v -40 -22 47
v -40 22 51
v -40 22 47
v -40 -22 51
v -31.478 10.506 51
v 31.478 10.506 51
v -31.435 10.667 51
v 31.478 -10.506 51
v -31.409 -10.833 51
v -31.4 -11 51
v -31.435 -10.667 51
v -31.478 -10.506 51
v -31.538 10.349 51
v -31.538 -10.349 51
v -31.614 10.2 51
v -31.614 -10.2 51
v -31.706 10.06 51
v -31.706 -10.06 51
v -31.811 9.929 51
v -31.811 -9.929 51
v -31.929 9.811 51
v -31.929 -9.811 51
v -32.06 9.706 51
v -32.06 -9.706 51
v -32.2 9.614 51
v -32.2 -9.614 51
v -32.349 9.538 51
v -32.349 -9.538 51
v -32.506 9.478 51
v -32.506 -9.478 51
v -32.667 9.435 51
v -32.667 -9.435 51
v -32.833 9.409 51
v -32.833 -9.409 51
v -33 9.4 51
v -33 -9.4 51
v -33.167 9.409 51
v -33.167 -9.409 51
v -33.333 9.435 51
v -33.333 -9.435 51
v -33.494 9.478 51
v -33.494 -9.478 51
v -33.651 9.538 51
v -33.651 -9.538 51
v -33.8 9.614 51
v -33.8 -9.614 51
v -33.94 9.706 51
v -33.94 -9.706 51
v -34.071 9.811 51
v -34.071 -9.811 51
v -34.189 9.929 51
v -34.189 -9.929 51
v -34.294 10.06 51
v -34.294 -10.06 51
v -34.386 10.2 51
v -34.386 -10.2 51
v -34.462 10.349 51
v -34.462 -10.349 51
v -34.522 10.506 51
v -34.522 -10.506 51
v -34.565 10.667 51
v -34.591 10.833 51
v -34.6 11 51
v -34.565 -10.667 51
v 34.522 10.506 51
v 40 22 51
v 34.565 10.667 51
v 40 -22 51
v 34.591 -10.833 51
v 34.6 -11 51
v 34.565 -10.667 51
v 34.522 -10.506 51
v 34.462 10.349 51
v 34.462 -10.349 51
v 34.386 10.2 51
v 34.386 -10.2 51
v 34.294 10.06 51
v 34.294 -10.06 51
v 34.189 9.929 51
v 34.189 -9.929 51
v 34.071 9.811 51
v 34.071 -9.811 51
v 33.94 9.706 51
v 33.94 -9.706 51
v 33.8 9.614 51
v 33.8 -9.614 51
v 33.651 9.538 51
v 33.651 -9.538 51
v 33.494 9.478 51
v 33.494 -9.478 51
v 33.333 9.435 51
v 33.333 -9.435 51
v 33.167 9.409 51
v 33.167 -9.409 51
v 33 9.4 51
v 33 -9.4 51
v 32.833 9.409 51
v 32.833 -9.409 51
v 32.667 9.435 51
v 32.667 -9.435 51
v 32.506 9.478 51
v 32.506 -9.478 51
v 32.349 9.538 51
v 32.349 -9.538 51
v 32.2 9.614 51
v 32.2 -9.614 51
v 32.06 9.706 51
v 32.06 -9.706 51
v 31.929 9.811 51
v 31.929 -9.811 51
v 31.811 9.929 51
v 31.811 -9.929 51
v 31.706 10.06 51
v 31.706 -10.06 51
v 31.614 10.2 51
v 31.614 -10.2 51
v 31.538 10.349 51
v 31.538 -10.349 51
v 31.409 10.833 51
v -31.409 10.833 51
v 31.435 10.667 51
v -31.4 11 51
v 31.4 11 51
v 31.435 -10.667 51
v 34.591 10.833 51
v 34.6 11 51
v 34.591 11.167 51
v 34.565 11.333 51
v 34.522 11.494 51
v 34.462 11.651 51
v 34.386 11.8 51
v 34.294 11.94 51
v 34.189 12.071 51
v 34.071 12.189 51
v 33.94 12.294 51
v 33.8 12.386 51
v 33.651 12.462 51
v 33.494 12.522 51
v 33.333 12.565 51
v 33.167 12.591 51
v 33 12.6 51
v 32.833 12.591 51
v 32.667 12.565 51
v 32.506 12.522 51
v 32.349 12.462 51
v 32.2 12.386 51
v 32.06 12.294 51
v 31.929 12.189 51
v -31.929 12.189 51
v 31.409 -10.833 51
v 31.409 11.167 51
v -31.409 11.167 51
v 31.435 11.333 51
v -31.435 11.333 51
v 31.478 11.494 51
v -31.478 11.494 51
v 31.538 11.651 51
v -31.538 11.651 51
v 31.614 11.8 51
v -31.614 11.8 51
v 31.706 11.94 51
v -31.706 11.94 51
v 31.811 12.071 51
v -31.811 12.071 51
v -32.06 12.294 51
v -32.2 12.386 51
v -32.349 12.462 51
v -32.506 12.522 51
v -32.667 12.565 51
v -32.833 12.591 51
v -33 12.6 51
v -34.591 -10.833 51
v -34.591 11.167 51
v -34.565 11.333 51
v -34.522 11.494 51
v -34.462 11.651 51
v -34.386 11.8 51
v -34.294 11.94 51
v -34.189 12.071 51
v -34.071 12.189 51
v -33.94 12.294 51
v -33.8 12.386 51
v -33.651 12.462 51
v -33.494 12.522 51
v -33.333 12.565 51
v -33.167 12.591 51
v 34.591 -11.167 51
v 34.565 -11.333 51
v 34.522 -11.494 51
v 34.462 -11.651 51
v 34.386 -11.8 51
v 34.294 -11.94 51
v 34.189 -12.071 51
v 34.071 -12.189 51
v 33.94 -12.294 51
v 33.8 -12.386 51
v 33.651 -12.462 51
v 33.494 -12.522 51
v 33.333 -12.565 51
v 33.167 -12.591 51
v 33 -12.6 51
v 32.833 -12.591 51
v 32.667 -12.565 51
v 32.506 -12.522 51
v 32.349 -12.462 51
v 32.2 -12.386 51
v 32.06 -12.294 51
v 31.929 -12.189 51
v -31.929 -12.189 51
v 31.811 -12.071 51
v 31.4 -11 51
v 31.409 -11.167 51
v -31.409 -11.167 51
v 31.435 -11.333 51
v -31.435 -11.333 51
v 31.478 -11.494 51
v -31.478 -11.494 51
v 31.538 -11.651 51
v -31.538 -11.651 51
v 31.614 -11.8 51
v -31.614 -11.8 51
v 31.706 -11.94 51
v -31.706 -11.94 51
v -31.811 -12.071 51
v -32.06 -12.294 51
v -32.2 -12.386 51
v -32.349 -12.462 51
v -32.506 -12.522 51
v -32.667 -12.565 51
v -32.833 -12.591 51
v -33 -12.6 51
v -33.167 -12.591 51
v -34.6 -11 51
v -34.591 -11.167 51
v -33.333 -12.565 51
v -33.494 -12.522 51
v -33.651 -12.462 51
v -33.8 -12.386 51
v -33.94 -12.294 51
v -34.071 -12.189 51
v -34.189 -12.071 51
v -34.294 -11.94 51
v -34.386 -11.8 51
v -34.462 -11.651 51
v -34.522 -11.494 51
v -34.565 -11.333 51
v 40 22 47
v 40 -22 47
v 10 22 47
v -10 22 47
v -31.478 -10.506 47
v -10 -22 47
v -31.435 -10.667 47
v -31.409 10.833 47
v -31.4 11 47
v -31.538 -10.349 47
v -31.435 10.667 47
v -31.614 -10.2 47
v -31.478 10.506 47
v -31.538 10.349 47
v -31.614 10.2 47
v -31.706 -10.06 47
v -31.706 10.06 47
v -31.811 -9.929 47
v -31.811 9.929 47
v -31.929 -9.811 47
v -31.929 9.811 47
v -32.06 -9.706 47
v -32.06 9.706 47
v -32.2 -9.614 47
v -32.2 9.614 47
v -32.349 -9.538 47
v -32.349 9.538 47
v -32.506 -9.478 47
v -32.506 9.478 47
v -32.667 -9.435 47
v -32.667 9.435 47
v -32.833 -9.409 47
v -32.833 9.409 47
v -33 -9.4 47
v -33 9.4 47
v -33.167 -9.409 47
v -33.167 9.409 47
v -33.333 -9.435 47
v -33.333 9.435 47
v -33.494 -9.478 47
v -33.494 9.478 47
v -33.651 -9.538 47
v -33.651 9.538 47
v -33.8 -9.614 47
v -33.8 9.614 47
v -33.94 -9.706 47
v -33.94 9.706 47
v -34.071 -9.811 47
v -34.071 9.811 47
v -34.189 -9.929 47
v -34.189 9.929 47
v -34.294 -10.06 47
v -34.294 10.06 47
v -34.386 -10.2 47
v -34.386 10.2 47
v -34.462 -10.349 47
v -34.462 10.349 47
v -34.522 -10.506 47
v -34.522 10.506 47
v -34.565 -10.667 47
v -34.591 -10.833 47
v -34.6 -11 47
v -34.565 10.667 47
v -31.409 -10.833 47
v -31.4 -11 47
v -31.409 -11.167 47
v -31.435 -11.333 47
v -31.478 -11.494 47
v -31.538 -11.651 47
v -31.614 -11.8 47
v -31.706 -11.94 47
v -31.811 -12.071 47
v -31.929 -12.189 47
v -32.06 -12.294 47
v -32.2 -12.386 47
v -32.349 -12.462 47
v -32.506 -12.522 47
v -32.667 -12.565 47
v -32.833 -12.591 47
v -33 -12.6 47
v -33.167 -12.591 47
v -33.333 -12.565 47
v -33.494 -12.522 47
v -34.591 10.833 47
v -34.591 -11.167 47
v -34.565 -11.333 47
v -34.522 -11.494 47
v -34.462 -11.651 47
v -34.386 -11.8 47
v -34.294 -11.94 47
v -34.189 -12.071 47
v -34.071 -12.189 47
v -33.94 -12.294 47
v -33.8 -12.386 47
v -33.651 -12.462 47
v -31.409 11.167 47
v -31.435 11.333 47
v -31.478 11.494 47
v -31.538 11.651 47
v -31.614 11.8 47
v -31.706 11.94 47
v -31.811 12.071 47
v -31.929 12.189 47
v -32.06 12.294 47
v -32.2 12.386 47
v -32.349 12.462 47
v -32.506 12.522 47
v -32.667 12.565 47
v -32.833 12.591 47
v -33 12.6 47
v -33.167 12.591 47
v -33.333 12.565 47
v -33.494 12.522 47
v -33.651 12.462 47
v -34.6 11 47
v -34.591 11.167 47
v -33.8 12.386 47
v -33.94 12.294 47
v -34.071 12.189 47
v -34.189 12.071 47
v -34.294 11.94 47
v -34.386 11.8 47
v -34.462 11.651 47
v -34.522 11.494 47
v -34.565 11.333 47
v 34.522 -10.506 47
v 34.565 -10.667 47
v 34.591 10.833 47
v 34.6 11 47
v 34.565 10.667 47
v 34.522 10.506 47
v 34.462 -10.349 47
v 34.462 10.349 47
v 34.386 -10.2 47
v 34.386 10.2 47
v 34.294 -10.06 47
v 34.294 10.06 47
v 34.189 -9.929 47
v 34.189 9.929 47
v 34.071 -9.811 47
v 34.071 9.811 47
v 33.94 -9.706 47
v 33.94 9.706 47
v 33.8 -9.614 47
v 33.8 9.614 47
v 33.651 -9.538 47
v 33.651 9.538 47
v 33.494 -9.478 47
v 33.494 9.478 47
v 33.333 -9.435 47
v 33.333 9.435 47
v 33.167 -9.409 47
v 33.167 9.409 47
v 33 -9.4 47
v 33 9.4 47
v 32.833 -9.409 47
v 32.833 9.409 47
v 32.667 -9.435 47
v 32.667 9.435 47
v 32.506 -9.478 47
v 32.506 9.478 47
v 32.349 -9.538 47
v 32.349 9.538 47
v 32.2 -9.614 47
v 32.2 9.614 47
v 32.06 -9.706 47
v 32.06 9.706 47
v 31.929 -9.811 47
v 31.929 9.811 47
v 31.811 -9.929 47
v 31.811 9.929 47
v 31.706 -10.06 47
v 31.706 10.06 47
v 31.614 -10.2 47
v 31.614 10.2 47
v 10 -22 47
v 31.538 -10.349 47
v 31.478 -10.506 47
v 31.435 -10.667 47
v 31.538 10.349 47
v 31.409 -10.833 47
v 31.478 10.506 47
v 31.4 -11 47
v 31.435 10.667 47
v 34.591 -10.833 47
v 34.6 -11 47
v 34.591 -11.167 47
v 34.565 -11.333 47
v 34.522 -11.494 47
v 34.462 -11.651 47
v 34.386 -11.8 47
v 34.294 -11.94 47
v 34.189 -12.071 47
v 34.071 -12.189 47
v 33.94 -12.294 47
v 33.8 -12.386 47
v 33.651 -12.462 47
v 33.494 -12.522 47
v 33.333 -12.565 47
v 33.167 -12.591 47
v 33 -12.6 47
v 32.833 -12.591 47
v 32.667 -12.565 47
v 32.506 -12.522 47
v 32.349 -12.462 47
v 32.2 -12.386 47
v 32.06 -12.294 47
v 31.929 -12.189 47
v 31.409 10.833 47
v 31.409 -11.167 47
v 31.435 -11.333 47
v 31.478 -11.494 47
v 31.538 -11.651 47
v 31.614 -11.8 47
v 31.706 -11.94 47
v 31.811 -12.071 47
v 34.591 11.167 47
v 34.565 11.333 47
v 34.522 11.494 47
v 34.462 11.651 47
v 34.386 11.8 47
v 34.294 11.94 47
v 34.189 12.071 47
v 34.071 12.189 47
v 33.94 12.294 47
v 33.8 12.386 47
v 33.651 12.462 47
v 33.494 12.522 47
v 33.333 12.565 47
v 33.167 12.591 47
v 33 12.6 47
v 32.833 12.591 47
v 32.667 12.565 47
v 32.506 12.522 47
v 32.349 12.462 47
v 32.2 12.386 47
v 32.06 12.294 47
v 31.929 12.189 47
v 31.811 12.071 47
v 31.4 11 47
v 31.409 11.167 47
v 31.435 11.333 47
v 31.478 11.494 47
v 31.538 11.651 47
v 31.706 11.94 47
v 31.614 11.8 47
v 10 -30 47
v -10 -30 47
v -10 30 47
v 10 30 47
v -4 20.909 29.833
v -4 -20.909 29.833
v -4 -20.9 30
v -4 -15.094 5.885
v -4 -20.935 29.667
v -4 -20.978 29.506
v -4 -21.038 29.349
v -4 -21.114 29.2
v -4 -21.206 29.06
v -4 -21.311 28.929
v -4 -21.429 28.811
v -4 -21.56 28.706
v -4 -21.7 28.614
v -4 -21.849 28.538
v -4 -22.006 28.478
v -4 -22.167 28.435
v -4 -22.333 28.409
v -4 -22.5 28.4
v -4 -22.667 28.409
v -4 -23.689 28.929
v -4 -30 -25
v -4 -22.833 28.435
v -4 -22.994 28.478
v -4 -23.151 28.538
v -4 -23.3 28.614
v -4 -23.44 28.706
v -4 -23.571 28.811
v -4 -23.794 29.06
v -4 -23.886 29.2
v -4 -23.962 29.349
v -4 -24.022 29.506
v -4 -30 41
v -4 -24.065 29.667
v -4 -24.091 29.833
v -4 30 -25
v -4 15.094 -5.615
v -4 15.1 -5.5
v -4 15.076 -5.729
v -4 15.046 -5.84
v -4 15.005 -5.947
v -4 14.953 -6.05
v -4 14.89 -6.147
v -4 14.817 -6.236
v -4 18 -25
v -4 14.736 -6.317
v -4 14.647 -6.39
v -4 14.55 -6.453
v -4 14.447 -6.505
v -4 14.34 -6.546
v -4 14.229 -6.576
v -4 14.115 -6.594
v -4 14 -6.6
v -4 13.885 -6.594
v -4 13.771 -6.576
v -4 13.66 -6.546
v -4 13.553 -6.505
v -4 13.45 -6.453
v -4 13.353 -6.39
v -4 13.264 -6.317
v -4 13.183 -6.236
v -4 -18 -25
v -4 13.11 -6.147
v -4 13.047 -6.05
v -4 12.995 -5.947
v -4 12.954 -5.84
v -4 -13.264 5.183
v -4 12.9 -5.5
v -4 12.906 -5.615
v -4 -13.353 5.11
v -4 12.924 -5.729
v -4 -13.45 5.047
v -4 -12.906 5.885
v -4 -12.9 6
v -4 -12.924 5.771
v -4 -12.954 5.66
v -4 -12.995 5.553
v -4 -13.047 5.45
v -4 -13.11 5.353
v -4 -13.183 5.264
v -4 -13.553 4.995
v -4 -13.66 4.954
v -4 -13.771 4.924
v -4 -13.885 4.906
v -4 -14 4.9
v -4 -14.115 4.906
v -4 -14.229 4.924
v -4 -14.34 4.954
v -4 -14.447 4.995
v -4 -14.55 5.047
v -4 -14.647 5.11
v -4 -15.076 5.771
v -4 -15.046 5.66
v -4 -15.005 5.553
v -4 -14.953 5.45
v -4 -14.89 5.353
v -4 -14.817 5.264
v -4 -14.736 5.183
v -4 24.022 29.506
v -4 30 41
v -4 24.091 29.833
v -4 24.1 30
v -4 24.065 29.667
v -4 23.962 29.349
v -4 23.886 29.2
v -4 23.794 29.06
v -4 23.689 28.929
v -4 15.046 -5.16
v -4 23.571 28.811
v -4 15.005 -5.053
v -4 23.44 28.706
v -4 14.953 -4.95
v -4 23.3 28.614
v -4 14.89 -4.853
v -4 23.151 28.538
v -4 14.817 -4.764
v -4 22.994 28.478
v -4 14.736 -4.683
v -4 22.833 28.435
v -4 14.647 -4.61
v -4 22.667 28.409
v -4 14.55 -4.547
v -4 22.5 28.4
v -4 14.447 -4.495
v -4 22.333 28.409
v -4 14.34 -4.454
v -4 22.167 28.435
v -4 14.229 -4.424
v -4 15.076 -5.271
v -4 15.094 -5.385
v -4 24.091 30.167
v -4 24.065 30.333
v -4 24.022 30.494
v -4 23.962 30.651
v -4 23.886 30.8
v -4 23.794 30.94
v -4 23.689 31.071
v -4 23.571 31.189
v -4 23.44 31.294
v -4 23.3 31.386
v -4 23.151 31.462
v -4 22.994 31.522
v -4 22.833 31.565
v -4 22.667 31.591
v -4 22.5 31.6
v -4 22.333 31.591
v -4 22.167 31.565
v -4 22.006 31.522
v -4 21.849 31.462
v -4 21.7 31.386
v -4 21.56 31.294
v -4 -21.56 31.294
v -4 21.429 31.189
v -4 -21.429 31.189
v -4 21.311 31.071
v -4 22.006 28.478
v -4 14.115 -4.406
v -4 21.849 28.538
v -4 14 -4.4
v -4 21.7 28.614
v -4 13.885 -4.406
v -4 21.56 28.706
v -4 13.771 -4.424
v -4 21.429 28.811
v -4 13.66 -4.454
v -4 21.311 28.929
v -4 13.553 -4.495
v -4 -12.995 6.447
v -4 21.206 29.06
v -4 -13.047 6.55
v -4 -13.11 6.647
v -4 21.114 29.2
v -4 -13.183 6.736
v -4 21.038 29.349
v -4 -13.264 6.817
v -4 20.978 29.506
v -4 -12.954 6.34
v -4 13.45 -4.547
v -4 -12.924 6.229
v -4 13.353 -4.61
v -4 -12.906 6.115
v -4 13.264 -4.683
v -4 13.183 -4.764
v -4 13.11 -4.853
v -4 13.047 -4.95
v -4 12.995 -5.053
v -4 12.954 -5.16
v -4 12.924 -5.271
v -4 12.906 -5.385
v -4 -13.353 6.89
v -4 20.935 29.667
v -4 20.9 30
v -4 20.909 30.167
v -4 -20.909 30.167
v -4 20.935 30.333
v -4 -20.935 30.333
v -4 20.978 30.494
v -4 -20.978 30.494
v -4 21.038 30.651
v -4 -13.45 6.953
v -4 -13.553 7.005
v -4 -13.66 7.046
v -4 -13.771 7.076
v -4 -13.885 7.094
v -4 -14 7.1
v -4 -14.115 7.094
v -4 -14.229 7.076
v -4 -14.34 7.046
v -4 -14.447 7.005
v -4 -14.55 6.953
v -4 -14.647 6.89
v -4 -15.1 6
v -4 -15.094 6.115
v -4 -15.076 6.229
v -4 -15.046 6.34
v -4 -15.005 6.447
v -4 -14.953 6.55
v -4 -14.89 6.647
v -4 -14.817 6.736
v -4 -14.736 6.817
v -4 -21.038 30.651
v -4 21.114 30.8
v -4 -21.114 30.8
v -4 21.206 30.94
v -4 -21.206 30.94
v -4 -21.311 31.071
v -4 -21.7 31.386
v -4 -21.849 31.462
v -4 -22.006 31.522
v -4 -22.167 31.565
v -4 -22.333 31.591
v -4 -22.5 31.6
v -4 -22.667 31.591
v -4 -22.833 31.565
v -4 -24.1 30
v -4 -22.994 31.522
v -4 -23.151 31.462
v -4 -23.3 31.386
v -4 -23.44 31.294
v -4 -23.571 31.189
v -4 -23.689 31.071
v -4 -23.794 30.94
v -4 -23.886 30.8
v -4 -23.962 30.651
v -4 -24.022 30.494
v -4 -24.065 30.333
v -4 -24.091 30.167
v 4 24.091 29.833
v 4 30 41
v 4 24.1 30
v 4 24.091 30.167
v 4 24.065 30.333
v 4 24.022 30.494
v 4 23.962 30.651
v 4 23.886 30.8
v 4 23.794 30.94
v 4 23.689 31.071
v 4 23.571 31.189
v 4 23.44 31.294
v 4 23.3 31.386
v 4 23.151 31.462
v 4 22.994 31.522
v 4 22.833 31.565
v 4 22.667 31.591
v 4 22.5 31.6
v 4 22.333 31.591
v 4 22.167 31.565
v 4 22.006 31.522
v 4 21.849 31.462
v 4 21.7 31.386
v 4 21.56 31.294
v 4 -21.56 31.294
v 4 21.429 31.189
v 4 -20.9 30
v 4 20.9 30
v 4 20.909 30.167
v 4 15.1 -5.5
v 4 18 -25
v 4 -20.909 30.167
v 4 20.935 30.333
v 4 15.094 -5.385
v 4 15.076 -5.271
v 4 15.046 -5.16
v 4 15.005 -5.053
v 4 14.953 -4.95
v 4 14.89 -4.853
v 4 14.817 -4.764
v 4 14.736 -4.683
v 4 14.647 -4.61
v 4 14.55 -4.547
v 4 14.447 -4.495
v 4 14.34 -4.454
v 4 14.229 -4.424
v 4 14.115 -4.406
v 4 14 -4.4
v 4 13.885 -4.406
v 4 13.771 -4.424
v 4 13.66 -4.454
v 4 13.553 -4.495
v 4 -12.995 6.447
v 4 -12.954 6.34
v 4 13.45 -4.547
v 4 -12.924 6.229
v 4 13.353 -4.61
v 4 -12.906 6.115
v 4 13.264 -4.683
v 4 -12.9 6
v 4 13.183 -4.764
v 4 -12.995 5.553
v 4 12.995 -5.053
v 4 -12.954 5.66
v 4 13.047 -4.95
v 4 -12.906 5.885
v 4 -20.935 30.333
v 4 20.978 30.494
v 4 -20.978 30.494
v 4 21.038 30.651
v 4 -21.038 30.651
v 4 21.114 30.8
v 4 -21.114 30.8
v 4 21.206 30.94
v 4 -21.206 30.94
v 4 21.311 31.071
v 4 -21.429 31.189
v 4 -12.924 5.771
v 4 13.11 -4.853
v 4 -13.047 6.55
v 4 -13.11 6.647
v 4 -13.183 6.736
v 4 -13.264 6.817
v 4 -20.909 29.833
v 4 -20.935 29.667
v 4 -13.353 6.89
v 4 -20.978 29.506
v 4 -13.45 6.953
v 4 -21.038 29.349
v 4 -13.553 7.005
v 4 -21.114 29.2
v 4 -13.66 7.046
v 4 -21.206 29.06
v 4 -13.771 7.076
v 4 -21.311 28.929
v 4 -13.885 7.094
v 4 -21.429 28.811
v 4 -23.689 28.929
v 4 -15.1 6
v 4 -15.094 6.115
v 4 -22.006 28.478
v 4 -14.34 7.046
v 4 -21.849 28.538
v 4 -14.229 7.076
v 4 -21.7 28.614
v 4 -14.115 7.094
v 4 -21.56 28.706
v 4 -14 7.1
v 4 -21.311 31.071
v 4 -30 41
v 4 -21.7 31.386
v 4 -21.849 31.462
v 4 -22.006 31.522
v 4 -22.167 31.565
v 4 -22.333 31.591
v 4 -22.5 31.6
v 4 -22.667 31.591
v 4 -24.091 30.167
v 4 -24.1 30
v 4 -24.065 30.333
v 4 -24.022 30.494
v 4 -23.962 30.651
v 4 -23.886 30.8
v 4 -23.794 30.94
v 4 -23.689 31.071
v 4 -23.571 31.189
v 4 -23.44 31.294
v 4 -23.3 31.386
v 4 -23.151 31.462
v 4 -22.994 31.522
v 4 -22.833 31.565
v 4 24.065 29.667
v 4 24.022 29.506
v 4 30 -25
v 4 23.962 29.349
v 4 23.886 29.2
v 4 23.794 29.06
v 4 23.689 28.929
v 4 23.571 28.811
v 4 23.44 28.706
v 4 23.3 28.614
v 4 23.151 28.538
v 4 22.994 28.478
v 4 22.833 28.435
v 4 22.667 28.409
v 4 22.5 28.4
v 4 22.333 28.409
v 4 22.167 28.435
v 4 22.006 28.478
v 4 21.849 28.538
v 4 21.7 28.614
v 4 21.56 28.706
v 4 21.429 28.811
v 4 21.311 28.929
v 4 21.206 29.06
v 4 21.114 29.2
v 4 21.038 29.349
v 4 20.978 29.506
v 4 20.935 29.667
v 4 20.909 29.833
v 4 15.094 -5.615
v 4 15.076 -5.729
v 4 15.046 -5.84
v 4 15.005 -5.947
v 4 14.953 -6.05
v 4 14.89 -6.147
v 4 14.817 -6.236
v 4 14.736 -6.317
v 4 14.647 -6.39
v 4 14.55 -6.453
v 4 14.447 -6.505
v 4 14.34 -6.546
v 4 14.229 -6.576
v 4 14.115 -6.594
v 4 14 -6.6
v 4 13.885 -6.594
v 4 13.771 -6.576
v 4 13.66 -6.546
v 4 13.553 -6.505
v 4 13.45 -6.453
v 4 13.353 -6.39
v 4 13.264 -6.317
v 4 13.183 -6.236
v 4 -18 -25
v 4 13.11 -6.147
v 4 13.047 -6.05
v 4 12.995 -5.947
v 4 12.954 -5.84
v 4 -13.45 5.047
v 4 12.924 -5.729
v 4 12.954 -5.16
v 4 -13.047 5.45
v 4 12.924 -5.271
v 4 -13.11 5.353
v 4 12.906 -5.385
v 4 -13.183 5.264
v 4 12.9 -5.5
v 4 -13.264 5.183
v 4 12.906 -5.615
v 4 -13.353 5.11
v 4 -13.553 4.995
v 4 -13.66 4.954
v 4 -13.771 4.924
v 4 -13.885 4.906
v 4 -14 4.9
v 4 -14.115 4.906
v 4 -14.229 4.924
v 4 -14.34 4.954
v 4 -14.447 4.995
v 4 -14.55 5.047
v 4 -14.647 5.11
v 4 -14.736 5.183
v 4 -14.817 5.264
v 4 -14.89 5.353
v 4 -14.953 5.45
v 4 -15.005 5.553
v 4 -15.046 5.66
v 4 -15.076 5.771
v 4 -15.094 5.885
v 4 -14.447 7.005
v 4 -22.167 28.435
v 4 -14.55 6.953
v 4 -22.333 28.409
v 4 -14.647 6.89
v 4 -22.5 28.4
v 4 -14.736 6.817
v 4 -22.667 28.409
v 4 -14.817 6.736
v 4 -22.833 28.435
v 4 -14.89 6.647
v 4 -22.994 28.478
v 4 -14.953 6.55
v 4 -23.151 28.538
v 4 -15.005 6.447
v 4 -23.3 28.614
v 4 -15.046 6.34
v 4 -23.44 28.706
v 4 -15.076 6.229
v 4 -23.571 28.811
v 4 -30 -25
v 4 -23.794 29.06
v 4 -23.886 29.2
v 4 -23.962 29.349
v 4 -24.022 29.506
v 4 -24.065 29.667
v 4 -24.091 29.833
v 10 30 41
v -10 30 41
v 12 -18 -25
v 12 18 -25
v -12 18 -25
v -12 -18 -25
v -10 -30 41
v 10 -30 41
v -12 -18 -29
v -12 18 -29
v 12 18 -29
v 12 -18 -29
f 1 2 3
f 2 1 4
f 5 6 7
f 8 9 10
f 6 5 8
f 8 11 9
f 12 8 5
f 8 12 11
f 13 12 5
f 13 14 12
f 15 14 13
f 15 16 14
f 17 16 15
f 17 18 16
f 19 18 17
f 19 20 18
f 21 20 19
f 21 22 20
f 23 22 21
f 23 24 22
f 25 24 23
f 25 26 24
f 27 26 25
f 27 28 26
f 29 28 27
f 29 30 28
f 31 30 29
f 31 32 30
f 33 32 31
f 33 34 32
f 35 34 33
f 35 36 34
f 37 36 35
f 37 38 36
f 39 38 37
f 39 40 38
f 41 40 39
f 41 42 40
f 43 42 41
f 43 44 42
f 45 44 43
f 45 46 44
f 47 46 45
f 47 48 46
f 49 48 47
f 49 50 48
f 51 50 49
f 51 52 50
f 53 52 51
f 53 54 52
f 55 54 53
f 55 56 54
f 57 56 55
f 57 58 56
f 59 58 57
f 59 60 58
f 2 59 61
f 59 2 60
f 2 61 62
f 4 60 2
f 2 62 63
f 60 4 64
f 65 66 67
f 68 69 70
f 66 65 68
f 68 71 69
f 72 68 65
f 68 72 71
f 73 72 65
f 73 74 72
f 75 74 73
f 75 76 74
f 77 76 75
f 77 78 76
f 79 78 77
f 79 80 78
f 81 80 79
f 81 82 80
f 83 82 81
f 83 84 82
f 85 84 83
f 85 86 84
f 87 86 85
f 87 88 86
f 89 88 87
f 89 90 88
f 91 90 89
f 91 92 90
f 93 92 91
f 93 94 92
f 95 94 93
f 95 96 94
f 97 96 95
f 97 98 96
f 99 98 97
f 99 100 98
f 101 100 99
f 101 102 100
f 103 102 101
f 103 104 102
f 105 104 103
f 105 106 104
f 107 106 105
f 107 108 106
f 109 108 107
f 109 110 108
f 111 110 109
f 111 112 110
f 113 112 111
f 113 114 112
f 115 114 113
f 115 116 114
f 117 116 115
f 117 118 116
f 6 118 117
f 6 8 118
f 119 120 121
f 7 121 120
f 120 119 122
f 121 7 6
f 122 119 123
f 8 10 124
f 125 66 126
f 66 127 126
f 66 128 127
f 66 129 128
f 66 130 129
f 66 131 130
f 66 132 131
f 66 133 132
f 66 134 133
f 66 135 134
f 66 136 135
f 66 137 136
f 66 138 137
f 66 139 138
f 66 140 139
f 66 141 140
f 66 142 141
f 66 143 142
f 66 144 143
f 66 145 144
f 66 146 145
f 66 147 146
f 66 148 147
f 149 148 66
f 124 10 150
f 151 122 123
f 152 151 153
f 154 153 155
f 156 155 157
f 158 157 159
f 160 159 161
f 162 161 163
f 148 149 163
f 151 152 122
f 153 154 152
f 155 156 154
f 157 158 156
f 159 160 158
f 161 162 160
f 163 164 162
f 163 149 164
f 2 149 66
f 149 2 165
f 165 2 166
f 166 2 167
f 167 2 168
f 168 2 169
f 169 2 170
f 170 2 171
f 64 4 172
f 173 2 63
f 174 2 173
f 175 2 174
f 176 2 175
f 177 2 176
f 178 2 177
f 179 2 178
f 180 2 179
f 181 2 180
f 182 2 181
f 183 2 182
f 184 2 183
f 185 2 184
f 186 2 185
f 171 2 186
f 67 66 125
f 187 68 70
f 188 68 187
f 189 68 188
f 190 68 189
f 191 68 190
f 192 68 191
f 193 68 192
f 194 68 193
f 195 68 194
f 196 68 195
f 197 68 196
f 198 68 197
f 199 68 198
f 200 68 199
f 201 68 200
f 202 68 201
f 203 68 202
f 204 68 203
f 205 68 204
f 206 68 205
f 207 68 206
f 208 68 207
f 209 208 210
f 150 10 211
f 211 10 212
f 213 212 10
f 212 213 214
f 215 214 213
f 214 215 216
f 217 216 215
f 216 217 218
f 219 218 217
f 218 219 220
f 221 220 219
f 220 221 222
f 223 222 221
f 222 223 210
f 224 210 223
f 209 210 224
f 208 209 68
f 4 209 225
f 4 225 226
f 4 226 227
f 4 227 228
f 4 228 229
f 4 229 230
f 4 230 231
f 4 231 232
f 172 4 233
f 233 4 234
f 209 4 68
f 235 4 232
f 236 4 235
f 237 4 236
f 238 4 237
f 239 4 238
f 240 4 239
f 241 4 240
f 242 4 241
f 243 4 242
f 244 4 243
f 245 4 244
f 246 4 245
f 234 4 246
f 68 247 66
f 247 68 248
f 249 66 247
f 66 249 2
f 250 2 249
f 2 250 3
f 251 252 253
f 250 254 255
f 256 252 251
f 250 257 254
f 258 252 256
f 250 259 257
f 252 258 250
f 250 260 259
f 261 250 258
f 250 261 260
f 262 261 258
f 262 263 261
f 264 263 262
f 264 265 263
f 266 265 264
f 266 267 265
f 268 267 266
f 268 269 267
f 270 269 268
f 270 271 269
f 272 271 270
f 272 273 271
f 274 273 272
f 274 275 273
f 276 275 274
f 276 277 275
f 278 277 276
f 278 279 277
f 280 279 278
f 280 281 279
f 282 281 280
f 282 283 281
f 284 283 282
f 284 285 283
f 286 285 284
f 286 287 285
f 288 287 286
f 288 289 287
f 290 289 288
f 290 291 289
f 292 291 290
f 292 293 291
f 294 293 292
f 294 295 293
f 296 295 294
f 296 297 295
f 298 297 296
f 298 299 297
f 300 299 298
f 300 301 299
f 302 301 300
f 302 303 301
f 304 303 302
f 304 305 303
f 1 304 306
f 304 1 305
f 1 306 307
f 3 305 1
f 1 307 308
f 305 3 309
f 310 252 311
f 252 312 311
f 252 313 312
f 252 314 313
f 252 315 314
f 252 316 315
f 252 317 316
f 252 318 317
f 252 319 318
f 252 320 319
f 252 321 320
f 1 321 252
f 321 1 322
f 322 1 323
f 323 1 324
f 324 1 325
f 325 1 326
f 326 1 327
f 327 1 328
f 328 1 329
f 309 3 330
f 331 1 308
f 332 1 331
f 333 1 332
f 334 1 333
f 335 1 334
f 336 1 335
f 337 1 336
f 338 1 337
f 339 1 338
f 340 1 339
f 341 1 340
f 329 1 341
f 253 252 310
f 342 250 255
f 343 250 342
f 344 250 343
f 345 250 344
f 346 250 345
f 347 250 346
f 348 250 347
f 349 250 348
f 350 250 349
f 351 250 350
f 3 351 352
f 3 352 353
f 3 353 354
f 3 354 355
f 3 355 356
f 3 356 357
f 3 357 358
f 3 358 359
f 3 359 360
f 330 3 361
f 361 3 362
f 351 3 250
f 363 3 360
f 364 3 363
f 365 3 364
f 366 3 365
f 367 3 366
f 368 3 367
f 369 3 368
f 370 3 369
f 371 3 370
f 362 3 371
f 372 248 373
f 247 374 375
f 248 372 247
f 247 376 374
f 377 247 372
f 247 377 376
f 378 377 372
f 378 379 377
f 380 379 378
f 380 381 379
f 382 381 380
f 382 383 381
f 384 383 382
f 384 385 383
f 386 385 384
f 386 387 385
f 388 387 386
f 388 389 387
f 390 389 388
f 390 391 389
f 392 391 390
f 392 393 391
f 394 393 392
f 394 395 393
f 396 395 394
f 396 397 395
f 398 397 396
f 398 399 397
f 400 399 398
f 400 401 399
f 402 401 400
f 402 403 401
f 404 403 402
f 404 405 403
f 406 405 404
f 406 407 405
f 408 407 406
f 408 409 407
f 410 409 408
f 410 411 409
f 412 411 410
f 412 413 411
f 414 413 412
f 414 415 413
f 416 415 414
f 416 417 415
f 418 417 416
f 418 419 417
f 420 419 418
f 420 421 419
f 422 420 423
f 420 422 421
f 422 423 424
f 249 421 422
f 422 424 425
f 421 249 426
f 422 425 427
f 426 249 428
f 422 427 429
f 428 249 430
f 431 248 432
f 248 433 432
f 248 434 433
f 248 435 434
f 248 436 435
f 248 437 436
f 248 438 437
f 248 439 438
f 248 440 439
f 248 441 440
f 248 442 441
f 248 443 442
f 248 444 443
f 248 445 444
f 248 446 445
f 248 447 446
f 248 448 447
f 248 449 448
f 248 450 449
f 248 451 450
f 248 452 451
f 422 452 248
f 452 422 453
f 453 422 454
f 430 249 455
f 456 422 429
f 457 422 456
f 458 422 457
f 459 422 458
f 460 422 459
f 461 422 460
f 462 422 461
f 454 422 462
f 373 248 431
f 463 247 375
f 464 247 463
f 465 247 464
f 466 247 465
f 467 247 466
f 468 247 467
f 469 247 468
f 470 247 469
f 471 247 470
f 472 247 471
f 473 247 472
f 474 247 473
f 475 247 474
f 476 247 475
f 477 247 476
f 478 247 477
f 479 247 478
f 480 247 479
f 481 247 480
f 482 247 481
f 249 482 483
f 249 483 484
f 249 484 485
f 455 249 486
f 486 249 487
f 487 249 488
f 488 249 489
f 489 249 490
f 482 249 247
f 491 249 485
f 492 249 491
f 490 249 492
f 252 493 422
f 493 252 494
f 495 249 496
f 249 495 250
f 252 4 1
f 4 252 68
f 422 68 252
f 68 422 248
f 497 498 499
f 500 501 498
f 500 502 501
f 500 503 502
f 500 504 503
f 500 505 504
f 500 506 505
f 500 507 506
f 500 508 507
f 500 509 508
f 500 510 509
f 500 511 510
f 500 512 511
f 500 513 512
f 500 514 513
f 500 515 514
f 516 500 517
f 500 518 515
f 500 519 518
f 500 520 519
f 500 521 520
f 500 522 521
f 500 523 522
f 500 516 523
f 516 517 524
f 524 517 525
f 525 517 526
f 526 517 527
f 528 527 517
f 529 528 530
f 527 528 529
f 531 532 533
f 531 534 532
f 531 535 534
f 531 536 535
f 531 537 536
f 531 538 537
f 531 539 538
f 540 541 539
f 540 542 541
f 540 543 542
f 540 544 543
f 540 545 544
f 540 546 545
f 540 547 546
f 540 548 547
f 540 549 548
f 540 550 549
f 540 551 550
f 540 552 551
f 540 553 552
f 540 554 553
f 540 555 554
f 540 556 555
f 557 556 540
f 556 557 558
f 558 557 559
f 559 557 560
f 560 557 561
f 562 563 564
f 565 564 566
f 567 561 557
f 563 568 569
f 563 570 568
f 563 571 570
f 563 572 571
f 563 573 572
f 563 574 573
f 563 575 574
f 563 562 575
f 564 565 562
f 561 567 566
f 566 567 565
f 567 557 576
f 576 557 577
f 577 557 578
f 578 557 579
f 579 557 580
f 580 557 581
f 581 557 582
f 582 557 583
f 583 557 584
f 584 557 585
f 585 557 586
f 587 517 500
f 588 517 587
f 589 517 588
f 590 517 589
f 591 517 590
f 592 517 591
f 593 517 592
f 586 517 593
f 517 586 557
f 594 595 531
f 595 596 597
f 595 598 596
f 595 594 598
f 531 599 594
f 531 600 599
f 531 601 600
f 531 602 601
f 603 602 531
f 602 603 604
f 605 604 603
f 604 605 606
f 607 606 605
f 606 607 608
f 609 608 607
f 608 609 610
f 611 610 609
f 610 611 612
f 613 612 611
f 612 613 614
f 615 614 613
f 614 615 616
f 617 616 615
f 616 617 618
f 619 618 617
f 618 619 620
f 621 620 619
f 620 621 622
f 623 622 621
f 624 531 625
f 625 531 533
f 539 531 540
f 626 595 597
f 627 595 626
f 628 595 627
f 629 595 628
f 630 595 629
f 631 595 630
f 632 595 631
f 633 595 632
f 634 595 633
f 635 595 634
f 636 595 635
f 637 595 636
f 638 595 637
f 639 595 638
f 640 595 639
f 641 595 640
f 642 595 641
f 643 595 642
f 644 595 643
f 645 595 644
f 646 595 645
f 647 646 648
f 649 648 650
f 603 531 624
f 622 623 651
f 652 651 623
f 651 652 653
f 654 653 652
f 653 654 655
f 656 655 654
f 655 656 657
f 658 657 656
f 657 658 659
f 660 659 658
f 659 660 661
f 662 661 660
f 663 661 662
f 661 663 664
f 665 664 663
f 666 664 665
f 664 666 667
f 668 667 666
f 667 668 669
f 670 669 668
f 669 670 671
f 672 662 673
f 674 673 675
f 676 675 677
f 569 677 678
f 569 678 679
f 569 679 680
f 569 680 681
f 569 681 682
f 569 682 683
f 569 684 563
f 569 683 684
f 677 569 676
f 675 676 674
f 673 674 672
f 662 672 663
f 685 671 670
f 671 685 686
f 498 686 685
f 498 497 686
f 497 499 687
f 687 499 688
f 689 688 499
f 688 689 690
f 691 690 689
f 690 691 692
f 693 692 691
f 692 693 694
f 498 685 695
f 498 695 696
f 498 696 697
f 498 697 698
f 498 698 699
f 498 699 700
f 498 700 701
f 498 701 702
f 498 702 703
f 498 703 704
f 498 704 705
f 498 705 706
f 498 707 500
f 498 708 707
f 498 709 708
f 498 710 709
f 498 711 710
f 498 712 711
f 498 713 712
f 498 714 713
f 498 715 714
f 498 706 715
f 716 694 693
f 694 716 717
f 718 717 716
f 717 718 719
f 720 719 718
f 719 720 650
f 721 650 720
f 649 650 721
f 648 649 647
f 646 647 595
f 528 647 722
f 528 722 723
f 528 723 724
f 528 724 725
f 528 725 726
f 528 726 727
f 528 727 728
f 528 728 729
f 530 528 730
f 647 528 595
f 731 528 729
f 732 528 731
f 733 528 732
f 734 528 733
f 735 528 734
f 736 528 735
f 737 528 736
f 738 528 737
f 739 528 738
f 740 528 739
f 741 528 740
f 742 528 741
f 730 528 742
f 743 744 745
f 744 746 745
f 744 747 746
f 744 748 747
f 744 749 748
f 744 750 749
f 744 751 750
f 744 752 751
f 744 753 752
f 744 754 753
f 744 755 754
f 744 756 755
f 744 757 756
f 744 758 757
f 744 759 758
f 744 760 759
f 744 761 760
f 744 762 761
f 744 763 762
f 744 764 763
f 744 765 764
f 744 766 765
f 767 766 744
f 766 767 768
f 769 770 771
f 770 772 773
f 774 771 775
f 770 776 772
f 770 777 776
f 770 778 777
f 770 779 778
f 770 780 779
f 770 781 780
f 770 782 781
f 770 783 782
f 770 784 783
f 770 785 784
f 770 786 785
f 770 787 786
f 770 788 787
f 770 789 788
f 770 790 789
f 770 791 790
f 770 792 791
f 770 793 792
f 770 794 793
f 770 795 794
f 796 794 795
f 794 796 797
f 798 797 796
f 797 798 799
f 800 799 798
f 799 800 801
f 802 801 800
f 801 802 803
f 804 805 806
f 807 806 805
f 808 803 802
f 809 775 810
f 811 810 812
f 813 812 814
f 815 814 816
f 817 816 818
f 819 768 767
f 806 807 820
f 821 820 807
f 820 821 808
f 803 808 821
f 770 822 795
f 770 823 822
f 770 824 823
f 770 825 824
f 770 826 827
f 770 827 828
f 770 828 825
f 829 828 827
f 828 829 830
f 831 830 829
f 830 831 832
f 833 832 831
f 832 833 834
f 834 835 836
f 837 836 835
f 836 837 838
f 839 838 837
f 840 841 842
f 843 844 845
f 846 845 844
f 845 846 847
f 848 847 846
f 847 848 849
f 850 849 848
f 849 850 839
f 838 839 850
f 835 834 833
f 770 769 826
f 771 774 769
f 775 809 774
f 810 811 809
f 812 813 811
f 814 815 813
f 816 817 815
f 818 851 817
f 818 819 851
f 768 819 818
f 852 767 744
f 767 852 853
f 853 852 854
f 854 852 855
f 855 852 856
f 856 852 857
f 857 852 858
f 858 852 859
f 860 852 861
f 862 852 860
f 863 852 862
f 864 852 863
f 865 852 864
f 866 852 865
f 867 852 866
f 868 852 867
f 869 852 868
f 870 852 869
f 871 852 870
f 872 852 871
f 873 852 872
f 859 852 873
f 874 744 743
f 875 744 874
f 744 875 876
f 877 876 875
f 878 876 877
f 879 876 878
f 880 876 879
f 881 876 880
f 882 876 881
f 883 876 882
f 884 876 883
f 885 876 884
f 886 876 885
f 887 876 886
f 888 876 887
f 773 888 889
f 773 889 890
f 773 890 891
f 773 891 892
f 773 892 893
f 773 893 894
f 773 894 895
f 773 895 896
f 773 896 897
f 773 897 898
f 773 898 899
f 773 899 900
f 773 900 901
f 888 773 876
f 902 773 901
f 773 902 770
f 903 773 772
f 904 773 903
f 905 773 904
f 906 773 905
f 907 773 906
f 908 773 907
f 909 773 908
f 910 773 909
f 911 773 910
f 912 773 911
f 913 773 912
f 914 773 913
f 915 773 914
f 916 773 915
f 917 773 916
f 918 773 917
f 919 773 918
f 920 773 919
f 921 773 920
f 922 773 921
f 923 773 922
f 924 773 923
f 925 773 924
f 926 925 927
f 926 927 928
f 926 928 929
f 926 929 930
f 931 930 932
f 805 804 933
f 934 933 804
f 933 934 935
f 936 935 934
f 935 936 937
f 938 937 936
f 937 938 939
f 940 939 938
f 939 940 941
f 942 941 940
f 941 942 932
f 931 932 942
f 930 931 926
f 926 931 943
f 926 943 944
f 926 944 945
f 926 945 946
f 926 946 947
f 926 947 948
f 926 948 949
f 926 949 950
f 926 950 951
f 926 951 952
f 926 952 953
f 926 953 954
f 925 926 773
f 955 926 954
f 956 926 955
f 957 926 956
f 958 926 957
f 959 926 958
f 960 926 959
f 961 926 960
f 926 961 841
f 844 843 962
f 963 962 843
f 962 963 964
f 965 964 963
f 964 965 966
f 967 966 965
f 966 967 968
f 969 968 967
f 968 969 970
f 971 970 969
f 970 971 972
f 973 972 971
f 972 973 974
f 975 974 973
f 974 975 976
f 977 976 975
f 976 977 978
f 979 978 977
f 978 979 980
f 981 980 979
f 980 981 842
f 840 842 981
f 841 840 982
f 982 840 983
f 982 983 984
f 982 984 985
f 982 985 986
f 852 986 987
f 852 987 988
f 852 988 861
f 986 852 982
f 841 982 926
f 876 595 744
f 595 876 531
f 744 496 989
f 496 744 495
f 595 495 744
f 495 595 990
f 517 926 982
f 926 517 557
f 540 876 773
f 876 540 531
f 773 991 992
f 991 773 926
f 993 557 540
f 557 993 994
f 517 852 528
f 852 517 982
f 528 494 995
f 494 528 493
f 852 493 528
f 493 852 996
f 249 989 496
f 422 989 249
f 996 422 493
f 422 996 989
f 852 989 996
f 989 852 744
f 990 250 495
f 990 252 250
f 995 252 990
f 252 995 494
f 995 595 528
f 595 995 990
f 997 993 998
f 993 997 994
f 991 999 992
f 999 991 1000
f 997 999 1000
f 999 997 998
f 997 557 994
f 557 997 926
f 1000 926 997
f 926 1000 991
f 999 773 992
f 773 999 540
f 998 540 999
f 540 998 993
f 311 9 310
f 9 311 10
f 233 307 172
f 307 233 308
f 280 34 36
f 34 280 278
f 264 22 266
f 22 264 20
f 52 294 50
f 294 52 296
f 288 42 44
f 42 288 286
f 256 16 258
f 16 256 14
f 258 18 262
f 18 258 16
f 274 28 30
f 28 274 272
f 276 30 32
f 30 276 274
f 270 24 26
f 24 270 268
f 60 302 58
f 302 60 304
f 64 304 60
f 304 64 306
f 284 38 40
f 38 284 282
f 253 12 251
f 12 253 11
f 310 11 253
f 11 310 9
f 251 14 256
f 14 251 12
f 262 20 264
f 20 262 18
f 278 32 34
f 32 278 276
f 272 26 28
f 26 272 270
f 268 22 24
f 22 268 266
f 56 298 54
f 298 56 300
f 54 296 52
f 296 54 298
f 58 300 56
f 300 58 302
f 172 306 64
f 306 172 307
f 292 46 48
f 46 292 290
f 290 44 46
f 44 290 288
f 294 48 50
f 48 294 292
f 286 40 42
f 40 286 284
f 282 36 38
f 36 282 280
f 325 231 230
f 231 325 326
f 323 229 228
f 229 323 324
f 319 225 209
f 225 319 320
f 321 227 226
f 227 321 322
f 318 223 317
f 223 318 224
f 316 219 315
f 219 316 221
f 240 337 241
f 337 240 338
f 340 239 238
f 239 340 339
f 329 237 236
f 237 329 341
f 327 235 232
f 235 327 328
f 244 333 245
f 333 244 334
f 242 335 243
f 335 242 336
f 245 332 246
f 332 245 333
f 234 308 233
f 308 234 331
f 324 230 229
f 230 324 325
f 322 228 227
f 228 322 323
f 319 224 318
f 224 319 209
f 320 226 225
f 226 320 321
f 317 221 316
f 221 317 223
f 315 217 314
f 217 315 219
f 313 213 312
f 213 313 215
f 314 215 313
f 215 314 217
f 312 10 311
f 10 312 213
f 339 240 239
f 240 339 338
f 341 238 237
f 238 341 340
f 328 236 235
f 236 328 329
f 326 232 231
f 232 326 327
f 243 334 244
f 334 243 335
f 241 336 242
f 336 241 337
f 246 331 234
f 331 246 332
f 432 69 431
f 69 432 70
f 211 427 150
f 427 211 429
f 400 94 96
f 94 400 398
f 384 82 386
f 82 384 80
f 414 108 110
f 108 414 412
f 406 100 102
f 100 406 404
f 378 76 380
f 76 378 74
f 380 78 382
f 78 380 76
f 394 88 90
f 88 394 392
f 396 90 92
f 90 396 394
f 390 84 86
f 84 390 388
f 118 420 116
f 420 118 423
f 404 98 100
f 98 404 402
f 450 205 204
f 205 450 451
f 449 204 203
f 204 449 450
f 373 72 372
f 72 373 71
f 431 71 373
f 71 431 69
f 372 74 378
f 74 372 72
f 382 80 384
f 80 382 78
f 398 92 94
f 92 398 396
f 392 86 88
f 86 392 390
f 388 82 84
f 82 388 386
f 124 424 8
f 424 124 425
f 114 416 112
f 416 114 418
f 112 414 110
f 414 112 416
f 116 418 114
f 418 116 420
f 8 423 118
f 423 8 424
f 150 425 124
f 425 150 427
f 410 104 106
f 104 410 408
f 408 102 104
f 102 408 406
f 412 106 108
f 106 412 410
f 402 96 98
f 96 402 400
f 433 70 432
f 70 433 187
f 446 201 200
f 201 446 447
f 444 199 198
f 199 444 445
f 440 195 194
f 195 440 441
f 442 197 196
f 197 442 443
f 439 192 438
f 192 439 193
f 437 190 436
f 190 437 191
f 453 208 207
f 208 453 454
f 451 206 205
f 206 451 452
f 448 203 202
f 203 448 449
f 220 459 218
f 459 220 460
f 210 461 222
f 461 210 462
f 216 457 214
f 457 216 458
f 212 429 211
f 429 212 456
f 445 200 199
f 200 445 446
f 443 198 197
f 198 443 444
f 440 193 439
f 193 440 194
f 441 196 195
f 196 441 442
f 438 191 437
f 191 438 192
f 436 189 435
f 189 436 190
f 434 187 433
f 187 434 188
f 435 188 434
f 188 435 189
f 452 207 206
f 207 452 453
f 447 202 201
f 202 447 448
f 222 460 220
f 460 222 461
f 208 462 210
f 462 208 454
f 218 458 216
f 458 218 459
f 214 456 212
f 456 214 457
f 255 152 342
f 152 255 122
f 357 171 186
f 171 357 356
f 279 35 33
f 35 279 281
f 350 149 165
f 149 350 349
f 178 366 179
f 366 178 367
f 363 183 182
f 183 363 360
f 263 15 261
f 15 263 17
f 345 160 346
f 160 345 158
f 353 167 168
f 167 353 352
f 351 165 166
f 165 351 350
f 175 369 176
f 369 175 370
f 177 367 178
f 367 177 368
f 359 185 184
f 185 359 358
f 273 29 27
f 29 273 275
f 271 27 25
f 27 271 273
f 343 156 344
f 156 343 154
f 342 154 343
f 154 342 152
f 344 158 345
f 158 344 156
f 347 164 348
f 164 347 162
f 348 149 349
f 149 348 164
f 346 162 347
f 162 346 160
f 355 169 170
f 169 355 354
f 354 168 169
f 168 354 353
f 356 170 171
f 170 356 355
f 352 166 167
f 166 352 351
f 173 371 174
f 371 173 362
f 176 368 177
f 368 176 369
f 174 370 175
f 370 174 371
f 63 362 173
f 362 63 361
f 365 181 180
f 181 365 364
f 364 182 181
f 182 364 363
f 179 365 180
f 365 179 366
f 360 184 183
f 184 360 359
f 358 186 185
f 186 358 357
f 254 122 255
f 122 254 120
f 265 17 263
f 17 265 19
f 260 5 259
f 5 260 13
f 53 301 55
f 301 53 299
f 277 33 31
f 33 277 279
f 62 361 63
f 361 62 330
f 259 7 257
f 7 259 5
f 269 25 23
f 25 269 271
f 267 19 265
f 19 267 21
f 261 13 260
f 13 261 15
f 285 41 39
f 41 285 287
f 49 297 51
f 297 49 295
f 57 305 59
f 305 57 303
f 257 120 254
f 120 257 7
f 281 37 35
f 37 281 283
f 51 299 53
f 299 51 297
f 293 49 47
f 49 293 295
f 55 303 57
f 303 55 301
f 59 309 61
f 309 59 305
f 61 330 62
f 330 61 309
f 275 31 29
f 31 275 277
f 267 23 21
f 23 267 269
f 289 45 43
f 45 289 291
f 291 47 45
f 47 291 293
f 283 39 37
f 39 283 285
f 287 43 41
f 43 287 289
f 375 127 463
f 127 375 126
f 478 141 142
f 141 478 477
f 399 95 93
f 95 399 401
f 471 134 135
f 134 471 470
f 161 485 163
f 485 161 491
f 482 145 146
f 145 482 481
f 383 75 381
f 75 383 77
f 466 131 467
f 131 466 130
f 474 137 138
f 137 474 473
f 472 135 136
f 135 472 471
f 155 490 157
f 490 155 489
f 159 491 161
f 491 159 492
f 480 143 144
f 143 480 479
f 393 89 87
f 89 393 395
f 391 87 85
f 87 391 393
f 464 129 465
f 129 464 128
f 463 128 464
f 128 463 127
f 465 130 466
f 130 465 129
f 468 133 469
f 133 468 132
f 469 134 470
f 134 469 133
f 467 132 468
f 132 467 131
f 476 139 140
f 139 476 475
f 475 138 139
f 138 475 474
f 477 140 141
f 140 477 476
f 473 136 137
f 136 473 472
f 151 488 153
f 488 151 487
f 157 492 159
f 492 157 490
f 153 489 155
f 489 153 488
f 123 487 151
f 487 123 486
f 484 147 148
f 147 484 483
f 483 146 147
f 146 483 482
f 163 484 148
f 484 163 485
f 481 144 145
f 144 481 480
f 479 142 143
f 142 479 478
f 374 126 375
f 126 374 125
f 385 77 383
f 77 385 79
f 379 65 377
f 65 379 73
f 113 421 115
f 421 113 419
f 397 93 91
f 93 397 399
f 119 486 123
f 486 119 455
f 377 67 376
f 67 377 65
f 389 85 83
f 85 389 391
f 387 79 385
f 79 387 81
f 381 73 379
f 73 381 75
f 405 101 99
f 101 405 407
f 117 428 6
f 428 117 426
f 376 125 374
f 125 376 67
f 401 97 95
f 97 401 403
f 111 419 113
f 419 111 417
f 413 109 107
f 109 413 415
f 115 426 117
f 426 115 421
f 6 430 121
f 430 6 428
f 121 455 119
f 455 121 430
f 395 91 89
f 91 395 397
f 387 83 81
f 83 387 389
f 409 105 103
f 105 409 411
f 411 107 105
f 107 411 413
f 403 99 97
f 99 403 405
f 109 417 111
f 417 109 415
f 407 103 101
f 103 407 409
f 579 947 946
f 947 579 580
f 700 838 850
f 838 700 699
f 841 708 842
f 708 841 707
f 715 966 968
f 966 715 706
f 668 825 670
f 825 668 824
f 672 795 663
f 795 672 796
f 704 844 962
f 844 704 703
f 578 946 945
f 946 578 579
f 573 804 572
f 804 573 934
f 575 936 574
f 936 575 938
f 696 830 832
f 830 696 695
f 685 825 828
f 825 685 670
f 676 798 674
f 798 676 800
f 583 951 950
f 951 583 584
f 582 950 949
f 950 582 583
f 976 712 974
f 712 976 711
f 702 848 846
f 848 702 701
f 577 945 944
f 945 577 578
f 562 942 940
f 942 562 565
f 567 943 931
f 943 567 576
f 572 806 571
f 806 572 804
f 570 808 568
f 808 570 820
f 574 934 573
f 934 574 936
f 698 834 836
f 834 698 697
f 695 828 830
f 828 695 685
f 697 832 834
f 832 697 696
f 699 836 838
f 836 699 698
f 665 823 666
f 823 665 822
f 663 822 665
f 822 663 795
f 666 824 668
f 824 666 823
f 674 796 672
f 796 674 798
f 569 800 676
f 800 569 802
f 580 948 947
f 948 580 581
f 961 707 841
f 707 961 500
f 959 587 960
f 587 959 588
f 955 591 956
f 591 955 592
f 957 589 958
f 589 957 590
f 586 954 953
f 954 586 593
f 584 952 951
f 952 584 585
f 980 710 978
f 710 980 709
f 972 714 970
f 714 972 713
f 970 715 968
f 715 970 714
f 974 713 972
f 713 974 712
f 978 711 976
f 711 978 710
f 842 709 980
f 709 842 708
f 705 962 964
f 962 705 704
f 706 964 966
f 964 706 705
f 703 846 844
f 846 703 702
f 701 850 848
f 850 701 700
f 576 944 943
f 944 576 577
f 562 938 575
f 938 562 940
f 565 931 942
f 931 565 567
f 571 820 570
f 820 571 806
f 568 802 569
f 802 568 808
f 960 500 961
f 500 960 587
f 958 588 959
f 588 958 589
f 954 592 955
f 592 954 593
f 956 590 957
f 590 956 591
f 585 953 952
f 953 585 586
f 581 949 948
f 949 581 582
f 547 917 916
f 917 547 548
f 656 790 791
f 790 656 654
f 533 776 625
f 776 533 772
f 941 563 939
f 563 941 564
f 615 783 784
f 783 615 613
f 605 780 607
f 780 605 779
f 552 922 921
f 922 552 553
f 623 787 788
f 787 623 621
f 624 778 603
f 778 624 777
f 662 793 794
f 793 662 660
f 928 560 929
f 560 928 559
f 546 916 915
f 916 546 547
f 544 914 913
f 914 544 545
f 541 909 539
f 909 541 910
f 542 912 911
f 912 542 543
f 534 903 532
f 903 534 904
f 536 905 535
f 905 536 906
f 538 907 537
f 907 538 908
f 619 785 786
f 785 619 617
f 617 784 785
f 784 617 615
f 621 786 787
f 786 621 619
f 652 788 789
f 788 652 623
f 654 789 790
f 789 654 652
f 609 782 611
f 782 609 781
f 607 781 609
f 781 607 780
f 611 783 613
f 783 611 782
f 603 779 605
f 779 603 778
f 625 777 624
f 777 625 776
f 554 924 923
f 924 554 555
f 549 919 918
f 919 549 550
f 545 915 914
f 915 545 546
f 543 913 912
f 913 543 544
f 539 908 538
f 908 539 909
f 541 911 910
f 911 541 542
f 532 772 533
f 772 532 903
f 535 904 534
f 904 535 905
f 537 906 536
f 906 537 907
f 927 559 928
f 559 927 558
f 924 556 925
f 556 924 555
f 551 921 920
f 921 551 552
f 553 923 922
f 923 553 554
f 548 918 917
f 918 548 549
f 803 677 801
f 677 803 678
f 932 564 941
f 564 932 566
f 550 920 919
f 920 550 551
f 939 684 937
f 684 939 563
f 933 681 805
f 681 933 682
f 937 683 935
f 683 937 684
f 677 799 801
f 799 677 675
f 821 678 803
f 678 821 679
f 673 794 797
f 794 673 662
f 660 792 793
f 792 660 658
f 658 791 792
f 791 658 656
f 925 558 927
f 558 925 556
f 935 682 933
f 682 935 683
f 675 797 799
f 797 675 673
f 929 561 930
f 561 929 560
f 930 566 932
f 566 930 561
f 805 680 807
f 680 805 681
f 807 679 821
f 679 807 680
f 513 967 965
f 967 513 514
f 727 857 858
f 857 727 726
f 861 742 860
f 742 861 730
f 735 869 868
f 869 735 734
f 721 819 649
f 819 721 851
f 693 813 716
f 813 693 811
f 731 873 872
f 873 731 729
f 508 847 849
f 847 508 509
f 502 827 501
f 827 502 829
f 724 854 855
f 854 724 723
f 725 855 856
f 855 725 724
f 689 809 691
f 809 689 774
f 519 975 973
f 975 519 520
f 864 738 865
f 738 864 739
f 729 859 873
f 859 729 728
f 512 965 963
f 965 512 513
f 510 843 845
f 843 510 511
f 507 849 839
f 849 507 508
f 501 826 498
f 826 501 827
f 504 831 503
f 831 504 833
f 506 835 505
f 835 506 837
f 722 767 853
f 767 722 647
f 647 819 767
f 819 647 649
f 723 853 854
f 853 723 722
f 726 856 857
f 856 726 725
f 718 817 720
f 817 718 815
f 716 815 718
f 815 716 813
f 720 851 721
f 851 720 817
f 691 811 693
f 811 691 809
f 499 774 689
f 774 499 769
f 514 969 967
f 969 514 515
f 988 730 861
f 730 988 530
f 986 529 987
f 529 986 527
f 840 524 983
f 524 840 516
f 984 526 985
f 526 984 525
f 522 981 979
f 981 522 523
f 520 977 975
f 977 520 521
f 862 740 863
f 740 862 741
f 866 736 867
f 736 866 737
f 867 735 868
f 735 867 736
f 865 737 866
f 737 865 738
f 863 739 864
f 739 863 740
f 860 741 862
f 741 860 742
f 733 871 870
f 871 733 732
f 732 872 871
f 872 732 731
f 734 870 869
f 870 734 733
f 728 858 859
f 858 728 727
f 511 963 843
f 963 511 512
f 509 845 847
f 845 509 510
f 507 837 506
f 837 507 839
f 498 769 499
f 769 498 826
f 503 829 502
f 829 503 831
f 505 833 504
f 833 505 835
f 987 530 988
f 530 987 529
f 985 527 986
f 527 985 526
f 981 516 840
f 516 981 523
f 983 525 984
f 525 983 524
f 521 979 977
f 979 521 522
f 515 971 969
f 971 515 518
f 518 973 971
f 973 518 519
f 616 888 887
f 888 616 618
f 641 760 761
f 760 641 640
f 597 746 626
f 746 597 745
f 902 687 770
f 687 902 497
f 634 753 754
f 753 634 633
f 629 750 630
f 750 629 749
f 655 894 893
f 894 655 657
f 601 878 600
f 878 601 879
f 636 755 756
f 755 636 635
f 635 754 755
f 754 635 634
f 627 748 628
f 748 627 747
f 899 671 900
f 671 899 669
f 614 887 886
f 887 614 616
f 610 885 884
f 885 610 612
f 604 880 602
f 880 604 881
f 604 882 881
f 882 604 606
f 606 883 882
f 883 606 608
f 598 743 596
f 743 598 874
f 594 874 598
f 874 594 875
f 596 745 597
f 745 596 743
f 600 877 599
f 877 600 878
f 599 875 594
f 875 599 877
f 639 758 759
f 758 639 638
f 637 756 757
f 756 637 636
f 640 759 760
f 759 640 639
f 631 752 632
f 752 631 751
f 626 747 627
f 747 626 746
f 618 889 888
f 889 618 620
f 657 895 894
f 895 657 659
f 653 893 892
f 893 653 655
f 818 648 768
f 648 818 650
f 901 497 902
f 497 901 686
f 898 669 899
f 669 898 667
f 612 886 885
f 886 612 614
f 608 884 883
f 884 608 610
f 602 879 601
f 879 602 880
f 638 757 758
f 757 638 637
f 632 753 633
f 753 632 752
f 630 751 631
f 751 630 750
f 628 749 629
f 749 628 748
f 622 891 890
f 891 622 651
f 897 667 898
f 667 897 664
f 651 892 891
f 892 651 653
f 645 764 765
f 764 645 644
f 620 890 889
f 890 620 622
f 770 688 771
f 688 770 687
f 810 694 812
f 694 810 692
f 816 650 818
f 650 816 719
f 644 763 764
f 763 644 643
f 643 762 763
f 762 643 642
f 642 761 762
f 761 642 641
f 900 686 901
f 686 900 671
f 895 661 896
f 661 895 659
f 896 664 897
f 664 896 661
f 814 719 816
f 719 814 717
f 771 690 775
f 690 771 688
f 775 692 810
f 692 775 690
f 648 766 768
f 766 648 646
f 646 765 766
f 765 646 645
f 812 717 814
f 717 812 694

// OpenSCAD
$fn = 60; // ความละเอียดรูกลมมาตรฐาน

module sensor_housing_front_facing_reinforced() {
    difference() {
        // --- 1. ชิ้นงานตันหลัก (Solid Body + ระบบรับแรงหนาพิเศษ) ---
        union() {
            // [แผ่นนอนบน] หนา 4mm ขนาด 80(X) x 44(Y) รองรับหน้าสัมผัสฐานลูกยางเกลียว M3
            translate([-40, -22, 47]) cube([80, 44, 4]);

            // [แผ่นตั้งเซ็นเซอร์หลัก] *อัปเดตขยายความหนาเป็น 8mm* (X = -4 ถึง 4) เพื่อความตึงตัวสูง 
            // หน้ากว้าง 60mm (Y = -30 ถึง 30) ยาวดิ่งลงมารวม 72mm (Z = -25 ถึง 47)
            translate([-4, -30, -25]) cube([8, 60, 72]);

            // [ระบบรับแรงเพิ่มใหม่: บ่ามุมฉากค้ำยันด้านหน้า] (Front Buttress Support)
            // เนื้อพลาสติกหนา 6mm ถ่วงไปฝั่งกล้อง (+X) ยาวกว้างเต็มหน้าแผ่นตั้ง 60mm ใต้แผ่นนอนบน 
            // ทำหน้าที่เป็นโคนเสารับแรงบิดและแรงปะทะลม ไม่ให้แผ่นตั้งหักงอ
            translate([4, -30, 41]) cube([6, 60, 6]);
            translate([-10, -30, 41]) cube([6, 60, 6]);
            

            // [แผ่นรับ MTF-01P ด้านล่างสุด] หนา 4mm ยื่นไปด้านหลัง (-X) 24mm กว้าง 36mm ล็อกกับระนาบ Z=-25
            translate([-12, -18, -29]) cube([24, 36, 4]);

            // [ครีบ Rib หนาแน่นฝั่งหลัง -X] อยู่ 2 ปลายที่ Y = -22 และ Y = 18 
            // ขัดมุมเฉียงอิงตามแกนหมุน ปิดผิว Closed Mesh เรียบร้อย
            //translate([-4, -30, -25]) cube([8, 60, 72]);
        }

        // --- 2. รูเจาะเรียบตรง ø3.2mm สำหรับรับเกลียวลูกยาง Damper (4 จุด พิกัดร่วม X = ±33, Y = ±11) ---
        translate([-33, -11, 45]) cylinder(d=3.2, h=8);
        translate([33, -11, 45]) cylinder(d=3.2, h=8);
        translate([-33, 11, 45]) cylinder(d=3.2, h=8);
        translate([33, 11, 45]) cylinder(d=3.2, h=8);

        // ====================================================
        // รูเจาะทะลุเรียบตรง ø2.2mm ยึด TFmini Plus (Y = ±14) เจาะทะลุตามแกน X
        // ====================================================
        translate([-10, -14, 6]) rotate([0, 90, 0]) cylinder(d=2.2, h=20);
        translate([-10, 14, -5.5]) rotate([0, 90, 0]) cylinder(d=2.2, h=20);

        // ====================================================
        // รูเจาะทะลุเรียบตรง ø3.2mm สำหรับยึด Intel RealSense D435i (M3 ห่างกัน 45mm หรือ Y = ±22.5)
        // ยกตำแหน่งขึ้นไปที่ระนาบความสูง Z = 30 (ขันน็อตยาว M3x8mm ทะลุแผ่น 8mm สบายๆ)
        // ====================================================
        translate([-10, -22.5, 30]) rotate([0, 90, 0]) cylinder(d=3.2, h=20);
        translate([-10, 22.5, 30]) rotate([0, 90, 0]) cylinder(d=3.2, h=20);

        // ====================================================
        // รูเจาะทะลุเรียบตรง ø2.7mm ยึดบอร์ดส่องพื้น MTF-01P 4 จุด (พิกัดกว้าง 24.3mm / ลึก 12mm)
        // ====================================================
        //translate([-10, -12.15, -26]) cylinder(d=2.7, h=6);
        //translate([-10, 12.15, -26]) cylinder(d=2.7, h=6);
        //translate([-22, -12.15, -26]) cylinder(d=2.7, h=6);
        //translate([-22, 12.15, -26]) cylinder(d=2.7, h=6);

        // ช่องหน้าต่างสี่เหลี่ยม เปิดโล่งเคลียร์เลนส์คู่และเลเซอร์ส่องพื้น (Size 10x18mm)
        //translate([-21, -9, -26]) cube([10, 18, 6]);
    }
}

// Sub-module: โครงสร้างครีบค้ำแนวหลัง (เรียงลำดับดรรชนีผิวถูกต้อง ไม่เกิด Error ตอนกด F6)
module r_smooth_rib_heavy_fixed() {
    polyhedron(
        points = [
            [0,  0,  0], [4,  0,  0], [4,  0, 22],
            [0,  0, 22], 
            [0,  5, 22], // <-- บรรทัดที่ 57: แก้เลข 8 เป็น 5 (หรือ 4)
            [4,  5, 22]  // <-- บรรทัดที่ 58: แก้เลข 8 เป็น 5 (หรือ 4)
        ],
        faces = [
            [3, 2, 1, 0], 
            [0, 1, 5, 4], 
            [2, 3, 4, 5], 
            [0, 4, 3],    
            [1, 2, 5]     
        ]
    );
}

// สั่งทำงานฟังก์ชันโครงสร้าง Front-Facing เสริมบ่ารับแรงหักหักถาวร
sensor_housing_front_facing_reinforced();
